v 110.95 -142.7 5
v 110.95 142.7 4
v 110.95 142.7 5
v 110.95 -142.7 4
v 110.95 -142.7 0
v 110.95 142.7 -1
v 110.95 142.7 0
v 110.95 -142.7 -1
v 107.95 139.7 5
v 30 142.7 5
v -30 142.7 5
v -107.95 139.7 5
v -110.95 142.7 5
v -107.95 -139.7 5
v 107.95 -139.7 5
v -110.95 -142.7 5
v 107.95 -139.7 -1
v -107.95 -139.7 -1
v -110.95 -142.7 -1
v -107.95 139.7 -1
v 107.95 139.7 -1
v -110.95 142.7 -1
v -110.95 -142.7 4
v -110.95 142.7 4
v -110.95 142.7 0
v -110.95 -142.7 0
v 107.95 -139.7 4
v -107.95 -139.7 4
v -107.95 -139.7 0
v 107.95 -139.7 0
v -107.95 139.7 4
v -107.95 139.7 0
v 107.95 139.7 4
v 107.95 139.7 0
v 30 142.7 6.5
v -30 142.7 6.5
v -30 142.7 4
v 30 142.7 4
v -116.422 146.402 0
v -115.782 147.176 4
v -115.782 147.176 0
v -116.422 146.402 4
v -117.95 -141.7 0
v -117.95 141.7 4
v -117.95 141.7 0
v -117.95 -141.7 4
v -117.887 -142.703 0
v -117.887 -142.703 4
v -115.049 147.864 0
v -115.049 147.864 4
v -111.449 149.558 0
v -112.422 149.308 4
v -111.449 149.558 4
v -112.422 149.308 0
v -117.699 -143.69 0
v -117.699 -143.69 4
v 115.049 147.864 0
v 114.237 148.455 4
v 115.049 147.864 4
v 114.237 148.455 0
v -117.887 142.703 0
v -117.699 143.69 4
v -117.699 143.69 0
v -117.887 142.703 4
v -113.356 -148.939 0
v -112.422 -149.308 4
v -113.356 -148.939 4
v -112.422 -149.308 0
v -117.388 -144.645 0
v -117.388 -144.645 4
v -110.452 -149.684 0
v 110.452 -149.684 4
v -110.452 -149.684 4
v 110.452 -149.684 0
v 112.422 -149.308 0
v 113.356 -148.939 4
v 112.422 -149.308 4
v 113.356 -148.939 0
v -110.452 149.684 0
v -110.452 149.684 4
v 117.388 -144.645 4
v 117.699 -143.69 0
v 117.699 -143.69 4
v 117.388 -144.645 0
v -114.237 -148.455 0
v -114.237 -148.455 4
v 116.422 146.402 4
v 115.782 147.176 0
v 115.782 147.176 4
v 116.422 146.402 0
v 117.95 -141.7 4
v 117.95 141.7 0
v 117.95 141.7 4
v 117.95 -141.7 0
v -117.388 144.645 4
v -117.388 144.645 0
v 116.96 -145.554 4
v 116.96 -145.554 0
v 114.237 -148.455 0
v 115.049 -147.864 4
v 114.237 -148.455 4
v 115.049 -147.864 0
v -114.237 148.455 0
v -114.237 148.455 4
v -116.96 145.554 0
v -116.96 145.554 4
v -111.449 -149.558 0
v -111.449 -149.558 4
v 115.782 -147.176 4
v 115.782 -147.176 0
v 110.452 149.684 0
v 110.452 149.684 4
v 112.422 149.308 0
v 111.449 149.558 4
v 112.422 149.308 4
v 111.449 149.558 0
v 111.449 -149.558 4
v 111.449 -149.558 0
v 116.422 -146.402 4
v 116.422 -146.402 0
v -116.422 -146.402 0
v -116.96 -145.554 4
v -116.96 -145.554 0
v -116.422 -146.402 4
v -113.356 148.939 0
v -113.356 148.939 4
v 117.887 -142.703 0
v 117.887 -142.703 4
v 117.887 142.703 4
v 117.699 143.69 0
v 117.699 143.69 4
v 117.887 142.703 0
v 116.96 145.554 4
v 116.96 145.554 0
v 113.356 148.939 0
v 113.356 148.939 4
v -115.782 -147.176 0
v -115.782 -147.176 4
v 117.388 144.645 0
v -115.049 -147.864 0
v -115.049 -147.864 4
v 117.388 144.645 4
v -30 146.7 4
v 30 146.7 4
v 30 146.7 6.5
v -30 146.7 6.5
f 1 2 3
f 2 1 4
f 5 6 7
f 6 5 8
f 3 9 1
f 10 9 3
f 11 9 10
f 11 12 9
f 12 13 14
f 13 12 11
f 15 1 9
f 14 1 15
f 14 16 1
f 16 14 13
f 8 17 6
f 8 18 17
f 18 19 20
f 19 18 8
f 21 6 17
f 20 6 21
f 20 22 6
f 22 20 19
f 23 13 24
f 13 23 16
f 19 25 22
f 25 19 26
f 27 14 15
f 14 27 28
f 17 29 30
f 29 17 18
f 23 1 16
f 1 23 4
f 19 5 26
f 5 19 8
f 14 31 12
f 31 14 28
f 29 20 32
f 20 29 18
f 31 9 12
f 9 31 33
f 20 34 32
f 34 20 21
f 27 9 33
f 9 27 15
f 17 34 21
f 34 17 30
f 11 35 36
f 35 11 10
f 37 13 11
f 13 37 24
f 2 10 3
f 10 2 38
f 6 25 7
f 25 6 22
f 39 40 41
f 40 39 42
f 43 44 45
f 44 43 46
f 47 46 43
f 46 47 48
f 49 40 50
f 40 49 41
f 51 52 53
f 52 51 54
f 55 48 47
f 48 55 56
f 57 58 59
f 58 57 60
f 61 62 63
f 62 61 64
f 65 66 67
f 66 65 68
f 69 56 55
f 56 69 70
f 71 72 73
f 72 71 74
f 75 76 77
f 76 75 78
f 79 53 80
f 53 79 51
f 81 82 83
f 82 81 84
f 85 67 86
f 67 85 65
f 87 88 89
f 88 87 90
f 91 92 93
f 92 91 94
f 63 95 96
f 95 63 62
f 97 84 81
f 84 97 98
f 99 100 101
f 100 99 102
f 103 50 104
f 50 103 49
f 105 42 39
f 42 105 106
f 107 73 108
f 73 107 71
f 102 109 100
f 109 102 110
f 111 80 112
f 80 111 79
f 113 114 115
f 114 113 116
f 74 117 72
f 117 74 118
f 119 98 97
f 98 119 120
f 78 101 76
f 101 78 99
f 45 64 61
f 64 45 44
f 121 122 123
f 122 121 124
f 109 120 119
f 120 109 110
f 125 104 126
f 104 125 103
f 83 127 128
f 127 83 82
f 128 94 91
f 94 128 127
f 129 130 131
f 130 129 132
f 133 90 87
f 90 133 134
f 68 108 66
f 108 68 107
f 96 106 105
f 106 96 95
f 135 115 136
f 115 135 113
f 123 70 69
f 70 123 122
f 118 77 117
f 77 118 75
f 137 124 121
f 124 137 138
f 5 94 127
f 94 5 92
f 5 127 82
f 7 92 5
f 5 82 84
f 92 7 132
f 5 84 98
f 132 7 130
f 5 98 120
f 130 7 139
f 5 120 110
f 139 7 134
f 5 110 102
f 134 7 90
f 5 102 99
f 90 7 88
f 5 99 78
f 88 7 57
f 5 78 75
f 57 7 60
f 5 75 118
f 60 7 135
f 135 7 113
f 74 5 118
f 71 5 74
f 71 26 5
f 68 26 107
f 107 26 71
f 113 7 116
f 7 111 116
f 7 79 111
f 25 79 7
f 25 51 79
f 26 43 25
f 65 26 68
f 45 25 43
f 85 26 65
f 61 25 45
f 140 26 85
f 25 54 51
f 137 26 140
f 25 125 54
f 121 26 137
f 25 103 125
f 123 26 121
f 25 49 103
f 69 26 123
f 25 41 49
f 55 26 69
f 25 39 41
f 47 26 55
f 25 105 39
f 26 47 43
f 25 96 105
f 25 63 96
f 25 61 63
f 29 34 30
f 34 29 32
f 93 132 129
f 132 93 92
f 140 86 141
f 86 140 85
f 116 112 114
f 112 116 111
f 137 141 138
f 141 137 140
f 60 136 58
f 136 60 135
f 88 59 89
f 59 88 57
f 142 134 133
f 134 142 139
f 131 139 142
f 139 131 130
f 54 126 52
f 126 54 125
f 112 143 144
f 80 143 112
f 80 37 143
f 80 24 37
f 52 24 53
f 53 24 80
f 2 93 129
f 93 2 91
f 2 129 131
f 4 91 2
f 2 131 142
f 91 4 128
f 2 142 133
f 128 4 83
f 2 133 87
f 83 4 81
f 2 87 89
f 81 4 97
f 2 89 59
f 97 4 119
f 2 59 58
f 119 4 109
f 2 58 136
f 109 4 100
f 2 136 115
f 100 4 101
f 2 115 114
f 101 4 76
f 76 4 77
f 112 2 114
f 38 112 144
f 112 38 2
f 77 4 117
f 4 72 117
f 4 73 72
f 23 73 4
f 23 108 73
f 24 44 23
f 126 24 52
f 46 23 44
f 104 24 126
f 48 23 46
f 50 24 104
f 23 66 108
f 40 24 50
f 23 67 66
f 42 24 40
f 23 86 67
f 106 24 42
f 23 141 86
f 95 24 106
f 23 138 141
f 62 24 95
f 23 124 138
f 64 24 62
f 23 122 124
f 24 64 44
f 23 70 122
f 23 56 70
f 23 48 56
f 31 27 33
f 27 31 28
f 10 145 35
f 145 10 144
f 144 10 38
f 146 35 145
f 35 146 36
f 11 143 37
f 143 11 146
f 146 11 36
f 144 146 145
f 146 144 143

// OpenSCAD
// Letter-sized Clipboard for 3D Printing
// Designed for functionality and durability with separate clothespin
// Paper size: 8.5" x 11" (215.9mm x 279.4mm)

// Global parameters
$fn = 50; // Smoothness for curved surfaces

// Clipboard dimensions (in mm)
paper_width = 215.9;    // 8.5 inches
paper_height = 279.4;   // 11 inches
base_thickness = 4;     // Thickness of the base plate
edge_height = 2;        // Height of raised edges
edge_thickness = 3;     // Thickness of raised edges
margin = 10;            // Margin around paper area

// Calculate total clipboard dimensions
total_width = paper_width + 2 * margin;
total_height = paper_height + 2 * margin;

// Main clipboard assembly
module clipboard() {
    union() {
        // Base plate
        base_plate();
        
        // Raised edges for paper positioning
        paper_edges();
        
        // Clothespin mounting ridge
        clothespin_ridge();
    }
}

// Base plate with rounded corners
module base_plate() {
    corner_radius = 8;
    
    hull() {
        for (x = [-total_width/2 + corner_radius, total_width/2 - corner_radius]) {
            for (y = [-total_height/2 + corner_radius, total_height/2 - corner_radius]) {
                translate([x, y, 0])
                    cylinder(r = corner_radius, h = base_thickness);
            }
        }
    }
}

// Raised edges to keep paper in place
module paper_edges() {
    // Bottom edge (full width)
    translate([0, -paper_height/2 - edge_thickness/2, base_thickness/2])
        cube([paper_width + 2*edge_thickness, edge_thickness, edge_height + base_thickness], center = true);
    
    // Left edge
    translate([-paper_width/2 - edge_thickness/2, 0, base_thickness/2])
        cube([edge_thickness, paper_height, edge_height + base_thickness], center = true);
    
    // Right edge  
    translate([paper_width/2 + edge_thickness/2, 0, base_thickness/2])
        cube([edge_thickness, paper_height, edge_height + base_thickness], center = true);
    
    // Top edge (full width - clothespin will go over this)
    translate([0, paper_height/2 + edge_thickness/2, base_thickness/2])
        cube([paper_width + 2*edge_thickness, edge_thickness, edge_height + base_thickness], center = true);
}

// Small ridge at top for clothespin to grip onto
module clothespin_ridge() {
    translate([0, paper_height/2 + edge_thickness + 2, base_thickness + edge_height/2])
        cube([60, 4, 3], center = true);
}

// Render the complete clipboard
clipboard(); 
